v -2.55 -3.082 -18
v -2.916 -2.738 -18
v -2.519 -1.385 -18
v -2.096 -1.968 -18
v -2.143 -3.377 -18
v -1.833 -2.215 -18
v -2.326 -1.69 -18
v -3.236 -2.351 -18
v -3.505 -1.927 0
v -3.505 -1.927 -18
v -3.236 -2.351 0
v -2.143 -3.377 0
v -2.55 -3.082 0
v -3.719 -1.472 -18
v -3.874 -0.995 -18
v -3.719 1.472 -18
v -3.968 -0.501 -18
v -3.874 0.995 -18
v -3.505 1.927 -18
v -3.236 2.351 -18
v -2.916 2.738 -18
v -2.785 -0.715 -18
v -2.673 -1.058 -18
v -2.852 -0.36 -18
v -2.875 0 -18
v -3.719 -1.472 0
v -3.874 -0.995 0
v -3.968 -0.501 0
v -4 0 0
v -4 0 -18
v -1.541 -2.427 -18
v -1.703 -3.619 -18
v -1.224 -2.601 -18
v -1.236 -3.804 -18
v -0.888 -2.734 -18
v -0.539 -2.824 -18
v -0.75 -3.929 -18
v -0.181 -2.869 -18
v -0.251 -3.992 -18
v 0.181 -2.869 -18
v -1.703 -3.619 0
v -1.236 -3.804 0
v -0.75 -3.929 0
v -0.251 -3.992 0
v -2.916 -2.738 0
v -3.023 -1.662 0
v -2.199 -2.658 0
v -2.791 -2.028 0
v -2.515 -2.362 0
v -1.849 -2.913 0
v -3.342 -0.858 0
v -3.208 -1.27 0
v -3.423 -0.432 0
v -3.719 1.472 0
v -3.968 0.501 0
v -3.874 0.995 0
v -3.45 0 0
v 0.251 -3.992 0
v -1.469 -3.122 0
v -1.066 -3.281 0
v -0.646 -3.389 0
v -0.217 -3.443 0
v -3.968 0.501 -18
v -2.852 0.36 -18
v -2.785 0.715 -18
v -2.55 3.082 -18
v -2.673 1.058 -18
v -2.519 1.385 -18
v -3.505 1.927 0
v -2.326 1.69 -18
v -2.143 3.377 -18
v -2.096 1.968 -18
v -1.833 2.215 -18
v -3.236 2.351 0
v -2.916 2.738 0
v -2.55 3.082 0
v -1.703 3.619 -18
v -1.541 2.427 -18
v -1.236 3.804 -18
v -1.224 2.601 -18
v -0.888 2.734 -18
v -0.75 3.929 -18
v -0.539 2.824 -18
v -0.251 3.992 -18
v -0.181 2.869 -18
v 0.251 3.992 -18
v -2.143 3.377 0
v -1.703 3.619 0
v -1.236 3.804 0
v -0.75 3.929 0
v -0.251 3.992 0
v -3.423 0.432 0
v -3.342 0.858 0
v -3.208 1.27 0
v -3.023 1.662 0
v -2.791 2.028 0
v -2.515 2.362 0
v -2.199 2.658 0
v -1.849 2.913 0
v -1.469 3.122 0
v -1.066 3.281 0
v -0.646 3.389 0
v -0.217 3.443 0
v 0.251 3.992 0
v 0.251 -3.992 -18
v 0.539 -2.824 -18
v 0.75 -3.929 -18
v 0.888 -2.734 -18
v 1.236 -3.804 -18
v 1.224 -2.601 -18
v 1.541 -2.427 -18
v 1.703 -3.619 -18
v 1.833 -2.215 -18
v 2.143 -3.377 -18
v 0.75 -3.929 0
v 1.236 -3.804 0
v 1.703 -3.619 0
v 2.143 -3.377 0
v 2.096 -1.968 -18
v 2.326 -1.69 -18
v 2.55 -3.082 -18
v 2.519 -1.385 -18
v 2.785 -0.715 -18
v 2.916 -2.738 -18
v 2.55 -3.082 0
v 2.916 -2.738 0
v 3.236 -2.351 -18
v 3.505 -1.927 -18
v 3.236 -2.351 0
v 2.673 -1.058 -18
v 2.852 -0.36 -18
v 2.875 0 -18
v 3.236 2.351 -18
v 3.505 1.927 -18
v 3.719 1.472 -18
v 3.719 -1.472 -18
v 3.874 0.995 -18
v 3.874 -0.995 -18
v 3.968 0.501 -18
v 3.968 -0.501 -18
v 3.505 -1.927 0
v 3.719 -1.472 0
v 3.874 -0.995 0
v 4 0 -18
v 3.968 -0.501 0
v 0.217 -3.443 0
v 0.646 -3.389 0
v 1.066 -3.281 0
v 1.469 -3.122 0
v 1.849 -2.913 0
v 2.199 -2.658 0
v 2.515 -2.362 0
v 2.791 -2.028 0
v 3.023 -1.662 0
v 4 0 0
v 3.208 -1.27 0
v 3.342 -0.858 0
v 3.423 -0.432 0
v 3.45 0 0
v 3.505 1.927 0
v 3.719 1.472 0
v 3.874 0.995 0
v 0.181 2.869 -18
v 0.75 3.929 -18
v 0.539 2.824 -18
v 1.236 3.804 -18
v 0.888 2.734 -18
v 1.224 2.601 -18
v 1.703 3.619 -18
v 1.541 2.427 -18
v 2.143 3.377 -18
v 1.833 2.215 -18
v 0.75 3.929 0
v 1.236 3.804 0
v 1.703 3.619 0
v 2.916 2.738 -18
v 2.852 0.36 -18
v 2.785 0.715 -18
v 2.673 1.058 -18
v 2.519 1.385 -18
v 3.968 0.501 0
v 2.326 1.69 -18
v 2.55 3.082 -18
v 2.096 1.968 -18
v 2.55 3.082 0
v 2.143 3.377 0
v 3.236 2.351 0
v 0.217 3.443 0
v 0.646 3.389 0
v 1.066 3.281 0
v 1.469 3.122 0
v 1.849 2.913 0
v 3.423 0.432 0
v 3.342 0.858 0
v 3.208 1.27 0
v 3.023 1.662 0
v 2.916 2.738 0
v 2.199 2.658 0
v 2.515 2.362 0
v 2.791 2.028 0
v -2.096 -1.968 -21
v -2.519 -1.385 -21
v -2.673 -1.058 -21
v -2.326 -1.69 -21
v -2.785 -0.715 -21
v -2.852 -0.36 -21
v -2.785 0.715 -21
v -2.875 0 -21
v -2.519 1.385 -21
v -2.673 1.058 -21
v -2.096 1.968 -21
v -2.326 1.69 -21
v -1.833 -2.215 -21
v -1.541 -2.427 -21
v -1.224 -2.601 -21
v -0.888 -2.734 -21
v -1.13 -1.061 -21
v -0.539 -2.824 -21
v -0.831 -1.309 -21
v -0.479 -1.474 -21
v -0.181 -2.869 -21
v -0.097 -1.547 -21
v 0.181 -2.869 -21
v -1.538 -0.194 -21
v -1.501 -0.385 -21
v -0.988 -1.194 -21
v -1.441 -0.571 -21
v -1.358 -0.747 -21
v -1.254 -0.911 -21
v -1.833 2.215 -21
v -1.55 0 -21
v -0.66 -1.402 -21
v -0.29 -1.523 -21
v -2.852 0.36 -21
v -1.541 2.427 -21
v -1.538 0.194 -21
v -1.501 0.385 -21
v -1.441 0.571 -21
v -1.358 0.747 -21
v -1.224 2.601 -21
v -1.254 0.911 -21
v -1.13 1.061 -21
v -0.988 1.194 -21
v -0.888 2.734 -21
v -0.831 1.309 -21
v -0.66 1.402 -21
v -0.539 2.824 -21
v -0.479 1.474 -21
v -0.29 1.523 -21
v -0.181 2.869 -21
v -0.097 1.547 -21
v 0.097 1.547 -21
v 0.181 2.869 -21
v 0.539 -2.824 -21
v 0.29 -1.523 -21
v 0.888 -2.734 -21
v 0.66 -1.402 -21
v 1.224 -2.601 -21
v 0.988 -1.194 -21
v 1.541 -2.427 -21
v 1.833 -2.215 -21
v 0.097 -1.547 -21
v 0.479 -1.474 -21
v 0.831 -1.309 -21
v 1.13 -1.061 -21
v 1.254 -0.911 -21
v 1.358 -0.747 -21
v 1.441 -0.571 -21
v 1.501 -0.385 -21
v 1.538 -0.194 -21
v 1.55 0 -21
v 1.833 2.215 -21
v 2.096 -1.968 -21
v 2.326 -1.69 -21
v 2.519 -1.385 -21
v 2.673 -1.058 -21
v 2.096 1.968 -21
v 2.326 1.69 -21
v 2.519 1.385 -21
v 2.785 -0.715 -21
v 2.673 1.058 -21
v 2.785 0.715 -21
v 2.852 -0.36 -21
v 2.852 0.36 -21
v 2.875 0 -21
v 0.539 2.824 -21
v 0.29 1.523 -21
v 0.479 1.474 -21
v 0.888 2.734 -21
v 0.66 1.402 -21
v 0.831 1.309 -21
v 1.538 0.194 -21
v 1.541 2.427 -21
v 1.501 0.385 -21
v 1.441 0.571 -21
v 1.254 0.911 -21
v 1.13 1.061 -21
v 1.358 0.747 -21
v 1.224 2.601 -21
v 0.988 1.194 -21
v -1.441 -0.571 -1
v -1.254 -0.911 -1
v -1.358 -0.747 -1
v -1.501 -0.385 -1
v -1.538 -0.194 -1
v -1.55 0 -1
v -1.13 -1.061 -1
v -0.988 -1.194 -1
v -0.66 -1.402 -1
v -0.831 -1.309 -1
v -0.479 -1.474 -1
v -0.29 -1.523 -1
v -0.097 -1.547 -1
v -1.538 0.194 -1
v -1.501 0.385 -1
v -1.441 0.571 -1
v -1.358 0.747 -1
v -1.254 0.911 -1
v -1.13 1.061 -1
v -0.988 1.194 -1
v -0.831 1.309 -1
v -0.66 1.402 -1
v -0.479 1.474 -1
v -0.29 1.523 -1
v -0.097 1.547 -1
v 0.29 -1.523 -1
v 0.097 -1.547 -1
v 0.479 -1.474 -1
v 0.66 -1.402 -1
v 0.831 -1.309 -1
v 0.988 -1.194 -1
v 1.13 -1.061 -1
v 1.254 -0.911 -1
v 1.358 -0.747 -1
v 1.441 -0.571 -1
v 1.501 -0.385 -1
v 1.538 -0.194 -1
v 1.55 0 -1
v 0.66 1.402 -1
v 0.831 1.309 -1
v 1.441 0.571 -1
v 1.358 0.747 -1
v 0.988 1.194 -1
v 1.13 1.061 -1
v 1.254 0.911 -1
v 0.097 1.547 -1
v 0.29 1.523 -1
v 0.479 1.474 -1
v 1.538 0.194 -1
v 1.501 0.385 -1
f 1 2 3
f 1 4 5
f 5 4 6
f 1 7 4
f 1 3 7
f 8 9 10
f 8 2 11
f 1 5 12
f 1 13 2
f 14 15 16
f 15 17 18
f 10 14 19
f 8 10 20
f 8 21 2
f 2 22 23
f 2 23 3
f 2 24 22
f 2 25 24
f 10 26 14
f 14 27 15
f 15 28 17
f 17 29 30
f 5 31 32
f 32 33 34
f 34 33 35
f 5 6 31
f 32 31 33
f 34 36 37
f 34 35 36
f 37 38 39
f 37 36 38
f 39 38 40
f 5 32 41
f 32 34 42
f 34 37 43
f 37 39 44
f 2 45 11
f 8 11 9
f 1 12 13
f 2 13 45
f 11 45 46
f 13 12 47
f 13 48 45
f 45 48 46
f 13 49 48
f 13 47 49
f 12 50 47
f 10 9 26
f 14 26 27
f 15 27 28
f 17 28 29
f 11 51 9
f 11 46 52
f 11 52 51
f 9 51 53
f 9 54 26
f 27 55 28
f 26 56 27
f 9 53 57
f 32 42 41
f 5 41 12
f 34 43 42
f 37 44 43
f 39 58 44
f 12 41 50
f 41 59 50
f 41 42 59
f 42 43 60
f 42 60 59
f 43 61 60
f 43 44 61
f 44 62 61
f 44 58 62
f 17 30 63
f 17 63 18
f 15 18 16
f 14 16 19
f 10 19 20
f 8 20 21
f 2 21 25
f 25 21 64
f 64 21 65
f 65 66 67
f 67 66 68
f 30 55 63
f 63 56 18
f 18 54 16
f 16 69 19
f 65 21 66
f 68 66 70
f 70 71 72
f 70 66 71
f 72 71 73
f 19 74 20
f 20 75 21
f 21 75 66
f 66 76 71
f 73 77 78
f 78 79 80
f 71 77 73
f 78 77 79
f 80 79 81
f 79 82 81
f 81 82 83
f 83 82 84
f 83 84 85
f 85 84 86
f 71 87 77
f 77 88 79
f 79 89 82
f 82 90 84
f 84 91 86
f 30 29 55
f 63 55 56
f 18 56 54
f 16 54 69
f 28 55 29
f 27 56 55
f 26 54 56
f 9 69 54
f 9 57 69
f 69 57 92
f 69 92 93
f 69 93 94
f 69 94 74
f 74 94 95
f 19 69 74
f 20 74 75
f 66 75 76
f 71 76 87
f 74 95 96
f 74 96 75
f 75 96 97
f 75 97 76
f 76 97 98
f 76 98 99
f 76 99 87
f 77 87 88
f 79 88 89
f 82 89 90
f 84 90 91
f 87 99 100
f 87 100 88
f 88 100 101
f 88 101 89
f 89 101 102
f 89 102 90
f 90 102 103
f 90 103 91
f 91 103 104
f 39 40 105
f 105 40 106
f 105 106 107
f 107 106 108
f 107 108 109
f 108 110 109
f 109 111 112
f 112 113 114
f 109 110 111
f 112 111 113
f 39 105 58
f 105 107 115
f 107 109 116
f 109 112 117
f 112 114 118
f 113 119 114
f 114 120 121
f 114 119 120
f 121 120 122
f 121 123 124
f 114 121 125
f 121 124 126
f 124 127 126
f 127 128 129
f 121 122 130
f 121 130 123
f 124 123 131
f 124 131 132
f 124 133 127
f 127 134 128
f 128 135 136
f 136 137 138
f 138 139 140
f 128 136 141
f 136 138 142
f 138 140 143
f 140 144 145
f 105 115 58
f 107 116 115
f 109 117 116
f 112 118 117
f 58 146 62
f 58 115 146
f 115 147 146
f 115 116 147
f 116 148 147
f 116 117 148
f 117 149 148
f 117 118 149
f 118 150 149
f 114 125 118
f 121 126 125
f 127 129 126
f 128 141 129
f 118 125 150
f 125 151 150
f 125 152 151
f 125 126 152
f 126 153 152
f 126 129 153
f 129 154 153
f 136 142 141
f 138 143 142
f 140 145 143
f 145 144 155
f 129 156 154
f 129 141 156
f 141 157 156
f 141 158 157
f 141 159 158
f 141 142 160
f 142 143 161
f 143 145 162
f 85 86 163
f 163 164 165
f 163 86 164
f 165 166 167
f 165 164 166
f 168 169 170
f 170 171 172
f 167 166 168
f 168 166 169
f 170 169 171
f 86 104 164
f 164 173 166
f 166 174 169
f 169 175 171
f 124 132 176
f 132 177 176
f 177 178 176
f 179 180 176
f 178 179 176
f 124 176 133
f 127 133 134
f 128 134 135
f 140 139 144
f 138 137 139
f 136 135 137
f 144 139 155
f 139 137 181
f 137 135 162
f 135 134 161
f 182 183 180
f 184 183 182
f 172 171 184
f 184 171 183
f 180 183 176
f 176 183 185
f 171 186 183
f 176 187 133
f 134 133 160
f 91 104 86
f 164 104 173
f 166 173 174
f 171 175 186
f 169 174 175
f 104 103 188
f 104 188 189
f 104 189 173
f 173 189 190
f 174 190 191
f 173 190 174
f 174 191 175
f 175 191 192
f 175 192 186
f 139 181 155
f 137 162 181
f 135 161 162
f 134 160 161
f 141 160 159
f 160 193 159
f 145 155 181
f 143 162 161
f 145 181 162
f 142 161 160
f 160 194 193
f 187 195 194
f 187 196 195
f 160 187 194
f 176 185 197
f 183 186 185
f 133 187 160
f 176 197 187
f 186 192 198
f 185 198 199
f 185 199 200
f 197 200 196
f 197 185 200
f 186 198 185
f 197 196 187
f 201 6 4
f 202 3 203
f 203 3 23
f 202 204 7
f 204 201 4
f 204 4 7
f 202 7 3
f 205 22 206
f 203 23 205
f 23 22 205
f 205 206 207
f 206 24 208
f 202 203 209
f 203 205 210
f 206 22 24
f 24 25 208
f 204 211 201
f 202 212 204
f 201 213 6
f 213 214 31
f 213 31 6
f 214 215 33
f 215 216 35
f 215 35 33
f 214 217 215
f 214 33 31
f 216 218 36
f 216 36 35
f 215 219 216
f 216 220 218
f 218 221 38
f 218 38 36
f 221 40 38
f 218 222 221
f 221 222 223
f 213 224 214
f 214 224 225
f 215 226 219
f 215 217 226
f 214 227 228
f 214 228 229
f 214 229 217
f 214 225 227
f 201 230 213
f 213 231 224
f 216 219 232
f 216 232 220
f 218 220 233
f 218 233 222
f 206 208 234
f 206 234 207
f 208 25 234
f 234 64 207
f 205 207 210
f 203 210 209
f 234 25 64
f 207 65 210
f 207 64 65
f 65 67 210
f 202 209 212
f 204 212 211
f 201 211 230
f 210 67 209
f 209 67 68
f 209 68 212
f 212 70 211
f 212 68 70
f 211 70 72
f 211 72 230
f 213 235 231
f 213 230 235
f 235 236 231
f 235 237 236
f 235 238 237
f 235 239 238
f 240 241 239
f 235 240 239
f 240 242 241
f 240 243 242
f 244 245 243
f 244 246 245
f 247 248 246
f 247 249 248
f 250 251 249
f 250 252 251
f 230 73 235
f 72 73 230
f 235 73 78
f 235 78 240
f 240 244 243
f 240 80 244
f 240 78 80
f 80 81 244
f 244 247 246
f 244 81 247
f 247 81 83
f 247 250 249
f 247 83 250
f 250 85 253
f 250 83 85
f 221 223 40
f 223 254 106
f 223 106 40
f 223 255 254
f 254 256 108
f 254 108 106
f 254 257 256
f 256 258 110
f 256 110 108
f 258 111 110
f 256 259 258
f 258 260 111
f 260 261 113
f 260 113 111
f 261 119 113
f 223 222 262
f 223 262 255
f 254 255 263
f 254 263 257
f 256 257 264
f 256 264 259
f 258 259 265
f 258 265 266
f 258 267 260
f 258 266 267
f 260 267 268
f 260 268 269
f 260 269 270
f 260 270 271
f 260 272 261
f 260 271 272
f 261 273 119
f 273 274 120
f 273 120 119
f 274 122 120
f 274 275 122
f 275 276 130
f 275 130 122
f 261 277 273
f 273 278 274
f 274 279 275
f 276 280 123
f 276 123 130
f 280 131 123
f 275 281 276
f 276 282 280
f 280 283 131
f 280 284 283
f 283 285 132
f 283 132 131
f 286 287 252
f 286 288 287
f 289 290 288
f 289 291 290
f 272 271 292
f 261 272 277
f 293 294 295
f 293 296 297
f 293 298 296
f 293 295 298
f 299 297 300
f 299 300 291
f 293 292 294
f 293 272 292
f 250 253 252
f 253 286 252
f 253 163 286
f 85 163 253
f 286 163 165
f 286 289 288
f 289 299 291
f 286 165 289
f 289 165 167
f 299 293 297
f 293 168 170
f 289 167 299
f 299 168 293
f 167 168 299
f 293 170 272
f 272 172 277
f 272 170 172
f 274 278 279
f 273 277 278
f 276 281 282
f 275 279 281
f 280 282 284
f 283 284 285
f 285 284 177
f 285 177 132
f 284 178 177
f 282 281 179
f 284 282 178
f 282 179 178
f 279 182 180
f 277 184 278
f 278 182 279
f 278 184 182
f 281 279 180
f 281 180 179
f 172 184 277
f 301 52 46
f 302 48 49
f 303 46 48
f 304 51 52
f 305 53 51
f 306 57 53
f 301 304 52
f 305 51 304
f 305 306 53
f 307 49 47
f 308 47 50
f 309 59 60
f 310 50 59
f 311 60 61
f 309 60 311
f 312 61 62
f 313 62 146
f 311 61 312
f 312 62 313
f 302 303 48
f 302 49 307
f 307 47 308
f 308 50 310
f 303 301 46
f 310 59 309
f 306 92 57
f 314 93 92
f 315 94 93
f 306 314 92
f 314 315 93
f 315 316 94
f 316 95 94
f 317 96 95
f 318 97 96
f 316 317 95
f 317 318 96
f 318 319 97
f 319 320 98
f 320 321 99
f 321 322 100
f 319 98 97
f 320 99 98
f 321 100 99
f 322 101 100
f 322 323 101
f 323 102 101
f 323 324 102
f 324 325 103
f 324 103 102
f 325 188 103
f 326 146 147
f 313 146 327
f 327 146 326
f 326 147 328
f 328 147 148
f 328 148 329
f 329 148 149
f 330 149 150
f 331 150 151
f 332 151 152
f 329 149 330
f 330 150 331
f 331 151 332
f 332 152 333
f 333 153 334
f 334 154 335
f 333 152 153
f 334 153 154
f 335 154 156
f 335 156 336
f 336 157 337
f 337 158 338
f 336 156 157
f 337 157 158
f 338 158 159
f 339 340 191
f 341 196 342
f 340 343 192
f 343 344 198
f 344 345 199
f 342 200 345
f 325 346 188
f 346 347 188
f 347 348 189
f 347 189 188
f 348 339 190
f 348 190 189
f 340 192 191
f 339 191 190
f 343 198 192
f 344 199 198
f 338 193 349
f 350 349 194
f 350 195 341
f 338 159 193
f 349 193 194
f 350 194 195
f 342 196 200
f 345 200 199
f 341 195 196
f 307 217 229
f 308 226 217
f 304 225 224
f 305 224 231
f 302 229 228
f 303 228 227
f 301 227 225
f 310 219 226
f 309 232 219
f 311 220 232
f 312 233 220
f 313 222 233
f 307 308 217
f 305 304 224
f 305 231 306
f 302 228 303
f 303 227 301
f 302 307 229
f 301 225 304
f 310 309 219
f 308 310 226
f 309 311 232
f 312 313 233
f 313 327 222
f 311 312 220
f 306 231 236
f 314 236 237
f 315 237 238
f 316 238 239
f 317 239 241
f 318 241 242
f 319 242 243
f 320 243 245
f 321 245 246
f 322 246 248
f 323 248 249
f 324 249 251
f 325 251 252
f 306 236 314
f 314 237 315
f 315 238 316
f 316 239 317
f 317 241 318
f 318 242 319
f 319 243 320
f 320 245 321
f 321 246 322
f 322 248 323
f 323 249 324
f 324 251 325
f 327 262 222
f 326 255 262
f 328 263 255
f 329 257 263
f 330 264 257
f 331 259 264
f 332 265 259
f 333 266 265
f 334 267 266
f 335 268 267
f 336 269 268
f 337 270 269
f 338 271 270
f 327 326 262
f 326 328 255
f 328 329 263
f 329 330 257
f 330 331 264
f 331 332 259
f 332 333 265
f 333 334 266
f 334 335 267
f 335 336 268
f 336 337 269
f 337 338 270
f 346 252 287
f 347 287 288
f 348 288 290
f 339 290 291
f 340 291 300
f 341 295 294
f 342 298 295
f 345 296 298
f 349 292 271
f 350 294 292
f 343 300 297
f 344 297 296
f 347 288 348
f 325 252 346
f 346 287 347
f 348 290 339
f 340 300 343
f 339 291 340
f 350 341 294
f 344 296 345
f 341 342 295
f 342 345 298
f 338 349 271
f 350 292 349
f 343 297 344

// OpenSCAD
$fn = 50;

difference() {
	union() {
		translate(v = [0, 0, -18.0]) {
			cylinder(h = 18, r = 4.0);
		}
		#translate(v = [0, 0, -21.0]) {
			cylinder(h = 21, r = 2.875);
		}
	}
	union() {
		translate(v = [0, 0, 0]) {
			rotate(a = [0, 0, 0]) {
				difference() {
					union() {
						translate(v = [0, 0, -21.0]) {
							cylinder(h = 21, r = 1.25);
						}
						translate(v = [0, 0, -1.0]) {
							cylinder(h = 1.0, r1 = 1.55, r2 = 3.45);
						}
						translate(v = [0, 0, -21.0]) {
							cylinder(h = 21, r = 1.55);
						}
						translate(v = [0, 0, -21.0]) {
							cylinder(h = 21, r = 1.25);
						}
					}
					union();
				}
			}
		}
	}
}
